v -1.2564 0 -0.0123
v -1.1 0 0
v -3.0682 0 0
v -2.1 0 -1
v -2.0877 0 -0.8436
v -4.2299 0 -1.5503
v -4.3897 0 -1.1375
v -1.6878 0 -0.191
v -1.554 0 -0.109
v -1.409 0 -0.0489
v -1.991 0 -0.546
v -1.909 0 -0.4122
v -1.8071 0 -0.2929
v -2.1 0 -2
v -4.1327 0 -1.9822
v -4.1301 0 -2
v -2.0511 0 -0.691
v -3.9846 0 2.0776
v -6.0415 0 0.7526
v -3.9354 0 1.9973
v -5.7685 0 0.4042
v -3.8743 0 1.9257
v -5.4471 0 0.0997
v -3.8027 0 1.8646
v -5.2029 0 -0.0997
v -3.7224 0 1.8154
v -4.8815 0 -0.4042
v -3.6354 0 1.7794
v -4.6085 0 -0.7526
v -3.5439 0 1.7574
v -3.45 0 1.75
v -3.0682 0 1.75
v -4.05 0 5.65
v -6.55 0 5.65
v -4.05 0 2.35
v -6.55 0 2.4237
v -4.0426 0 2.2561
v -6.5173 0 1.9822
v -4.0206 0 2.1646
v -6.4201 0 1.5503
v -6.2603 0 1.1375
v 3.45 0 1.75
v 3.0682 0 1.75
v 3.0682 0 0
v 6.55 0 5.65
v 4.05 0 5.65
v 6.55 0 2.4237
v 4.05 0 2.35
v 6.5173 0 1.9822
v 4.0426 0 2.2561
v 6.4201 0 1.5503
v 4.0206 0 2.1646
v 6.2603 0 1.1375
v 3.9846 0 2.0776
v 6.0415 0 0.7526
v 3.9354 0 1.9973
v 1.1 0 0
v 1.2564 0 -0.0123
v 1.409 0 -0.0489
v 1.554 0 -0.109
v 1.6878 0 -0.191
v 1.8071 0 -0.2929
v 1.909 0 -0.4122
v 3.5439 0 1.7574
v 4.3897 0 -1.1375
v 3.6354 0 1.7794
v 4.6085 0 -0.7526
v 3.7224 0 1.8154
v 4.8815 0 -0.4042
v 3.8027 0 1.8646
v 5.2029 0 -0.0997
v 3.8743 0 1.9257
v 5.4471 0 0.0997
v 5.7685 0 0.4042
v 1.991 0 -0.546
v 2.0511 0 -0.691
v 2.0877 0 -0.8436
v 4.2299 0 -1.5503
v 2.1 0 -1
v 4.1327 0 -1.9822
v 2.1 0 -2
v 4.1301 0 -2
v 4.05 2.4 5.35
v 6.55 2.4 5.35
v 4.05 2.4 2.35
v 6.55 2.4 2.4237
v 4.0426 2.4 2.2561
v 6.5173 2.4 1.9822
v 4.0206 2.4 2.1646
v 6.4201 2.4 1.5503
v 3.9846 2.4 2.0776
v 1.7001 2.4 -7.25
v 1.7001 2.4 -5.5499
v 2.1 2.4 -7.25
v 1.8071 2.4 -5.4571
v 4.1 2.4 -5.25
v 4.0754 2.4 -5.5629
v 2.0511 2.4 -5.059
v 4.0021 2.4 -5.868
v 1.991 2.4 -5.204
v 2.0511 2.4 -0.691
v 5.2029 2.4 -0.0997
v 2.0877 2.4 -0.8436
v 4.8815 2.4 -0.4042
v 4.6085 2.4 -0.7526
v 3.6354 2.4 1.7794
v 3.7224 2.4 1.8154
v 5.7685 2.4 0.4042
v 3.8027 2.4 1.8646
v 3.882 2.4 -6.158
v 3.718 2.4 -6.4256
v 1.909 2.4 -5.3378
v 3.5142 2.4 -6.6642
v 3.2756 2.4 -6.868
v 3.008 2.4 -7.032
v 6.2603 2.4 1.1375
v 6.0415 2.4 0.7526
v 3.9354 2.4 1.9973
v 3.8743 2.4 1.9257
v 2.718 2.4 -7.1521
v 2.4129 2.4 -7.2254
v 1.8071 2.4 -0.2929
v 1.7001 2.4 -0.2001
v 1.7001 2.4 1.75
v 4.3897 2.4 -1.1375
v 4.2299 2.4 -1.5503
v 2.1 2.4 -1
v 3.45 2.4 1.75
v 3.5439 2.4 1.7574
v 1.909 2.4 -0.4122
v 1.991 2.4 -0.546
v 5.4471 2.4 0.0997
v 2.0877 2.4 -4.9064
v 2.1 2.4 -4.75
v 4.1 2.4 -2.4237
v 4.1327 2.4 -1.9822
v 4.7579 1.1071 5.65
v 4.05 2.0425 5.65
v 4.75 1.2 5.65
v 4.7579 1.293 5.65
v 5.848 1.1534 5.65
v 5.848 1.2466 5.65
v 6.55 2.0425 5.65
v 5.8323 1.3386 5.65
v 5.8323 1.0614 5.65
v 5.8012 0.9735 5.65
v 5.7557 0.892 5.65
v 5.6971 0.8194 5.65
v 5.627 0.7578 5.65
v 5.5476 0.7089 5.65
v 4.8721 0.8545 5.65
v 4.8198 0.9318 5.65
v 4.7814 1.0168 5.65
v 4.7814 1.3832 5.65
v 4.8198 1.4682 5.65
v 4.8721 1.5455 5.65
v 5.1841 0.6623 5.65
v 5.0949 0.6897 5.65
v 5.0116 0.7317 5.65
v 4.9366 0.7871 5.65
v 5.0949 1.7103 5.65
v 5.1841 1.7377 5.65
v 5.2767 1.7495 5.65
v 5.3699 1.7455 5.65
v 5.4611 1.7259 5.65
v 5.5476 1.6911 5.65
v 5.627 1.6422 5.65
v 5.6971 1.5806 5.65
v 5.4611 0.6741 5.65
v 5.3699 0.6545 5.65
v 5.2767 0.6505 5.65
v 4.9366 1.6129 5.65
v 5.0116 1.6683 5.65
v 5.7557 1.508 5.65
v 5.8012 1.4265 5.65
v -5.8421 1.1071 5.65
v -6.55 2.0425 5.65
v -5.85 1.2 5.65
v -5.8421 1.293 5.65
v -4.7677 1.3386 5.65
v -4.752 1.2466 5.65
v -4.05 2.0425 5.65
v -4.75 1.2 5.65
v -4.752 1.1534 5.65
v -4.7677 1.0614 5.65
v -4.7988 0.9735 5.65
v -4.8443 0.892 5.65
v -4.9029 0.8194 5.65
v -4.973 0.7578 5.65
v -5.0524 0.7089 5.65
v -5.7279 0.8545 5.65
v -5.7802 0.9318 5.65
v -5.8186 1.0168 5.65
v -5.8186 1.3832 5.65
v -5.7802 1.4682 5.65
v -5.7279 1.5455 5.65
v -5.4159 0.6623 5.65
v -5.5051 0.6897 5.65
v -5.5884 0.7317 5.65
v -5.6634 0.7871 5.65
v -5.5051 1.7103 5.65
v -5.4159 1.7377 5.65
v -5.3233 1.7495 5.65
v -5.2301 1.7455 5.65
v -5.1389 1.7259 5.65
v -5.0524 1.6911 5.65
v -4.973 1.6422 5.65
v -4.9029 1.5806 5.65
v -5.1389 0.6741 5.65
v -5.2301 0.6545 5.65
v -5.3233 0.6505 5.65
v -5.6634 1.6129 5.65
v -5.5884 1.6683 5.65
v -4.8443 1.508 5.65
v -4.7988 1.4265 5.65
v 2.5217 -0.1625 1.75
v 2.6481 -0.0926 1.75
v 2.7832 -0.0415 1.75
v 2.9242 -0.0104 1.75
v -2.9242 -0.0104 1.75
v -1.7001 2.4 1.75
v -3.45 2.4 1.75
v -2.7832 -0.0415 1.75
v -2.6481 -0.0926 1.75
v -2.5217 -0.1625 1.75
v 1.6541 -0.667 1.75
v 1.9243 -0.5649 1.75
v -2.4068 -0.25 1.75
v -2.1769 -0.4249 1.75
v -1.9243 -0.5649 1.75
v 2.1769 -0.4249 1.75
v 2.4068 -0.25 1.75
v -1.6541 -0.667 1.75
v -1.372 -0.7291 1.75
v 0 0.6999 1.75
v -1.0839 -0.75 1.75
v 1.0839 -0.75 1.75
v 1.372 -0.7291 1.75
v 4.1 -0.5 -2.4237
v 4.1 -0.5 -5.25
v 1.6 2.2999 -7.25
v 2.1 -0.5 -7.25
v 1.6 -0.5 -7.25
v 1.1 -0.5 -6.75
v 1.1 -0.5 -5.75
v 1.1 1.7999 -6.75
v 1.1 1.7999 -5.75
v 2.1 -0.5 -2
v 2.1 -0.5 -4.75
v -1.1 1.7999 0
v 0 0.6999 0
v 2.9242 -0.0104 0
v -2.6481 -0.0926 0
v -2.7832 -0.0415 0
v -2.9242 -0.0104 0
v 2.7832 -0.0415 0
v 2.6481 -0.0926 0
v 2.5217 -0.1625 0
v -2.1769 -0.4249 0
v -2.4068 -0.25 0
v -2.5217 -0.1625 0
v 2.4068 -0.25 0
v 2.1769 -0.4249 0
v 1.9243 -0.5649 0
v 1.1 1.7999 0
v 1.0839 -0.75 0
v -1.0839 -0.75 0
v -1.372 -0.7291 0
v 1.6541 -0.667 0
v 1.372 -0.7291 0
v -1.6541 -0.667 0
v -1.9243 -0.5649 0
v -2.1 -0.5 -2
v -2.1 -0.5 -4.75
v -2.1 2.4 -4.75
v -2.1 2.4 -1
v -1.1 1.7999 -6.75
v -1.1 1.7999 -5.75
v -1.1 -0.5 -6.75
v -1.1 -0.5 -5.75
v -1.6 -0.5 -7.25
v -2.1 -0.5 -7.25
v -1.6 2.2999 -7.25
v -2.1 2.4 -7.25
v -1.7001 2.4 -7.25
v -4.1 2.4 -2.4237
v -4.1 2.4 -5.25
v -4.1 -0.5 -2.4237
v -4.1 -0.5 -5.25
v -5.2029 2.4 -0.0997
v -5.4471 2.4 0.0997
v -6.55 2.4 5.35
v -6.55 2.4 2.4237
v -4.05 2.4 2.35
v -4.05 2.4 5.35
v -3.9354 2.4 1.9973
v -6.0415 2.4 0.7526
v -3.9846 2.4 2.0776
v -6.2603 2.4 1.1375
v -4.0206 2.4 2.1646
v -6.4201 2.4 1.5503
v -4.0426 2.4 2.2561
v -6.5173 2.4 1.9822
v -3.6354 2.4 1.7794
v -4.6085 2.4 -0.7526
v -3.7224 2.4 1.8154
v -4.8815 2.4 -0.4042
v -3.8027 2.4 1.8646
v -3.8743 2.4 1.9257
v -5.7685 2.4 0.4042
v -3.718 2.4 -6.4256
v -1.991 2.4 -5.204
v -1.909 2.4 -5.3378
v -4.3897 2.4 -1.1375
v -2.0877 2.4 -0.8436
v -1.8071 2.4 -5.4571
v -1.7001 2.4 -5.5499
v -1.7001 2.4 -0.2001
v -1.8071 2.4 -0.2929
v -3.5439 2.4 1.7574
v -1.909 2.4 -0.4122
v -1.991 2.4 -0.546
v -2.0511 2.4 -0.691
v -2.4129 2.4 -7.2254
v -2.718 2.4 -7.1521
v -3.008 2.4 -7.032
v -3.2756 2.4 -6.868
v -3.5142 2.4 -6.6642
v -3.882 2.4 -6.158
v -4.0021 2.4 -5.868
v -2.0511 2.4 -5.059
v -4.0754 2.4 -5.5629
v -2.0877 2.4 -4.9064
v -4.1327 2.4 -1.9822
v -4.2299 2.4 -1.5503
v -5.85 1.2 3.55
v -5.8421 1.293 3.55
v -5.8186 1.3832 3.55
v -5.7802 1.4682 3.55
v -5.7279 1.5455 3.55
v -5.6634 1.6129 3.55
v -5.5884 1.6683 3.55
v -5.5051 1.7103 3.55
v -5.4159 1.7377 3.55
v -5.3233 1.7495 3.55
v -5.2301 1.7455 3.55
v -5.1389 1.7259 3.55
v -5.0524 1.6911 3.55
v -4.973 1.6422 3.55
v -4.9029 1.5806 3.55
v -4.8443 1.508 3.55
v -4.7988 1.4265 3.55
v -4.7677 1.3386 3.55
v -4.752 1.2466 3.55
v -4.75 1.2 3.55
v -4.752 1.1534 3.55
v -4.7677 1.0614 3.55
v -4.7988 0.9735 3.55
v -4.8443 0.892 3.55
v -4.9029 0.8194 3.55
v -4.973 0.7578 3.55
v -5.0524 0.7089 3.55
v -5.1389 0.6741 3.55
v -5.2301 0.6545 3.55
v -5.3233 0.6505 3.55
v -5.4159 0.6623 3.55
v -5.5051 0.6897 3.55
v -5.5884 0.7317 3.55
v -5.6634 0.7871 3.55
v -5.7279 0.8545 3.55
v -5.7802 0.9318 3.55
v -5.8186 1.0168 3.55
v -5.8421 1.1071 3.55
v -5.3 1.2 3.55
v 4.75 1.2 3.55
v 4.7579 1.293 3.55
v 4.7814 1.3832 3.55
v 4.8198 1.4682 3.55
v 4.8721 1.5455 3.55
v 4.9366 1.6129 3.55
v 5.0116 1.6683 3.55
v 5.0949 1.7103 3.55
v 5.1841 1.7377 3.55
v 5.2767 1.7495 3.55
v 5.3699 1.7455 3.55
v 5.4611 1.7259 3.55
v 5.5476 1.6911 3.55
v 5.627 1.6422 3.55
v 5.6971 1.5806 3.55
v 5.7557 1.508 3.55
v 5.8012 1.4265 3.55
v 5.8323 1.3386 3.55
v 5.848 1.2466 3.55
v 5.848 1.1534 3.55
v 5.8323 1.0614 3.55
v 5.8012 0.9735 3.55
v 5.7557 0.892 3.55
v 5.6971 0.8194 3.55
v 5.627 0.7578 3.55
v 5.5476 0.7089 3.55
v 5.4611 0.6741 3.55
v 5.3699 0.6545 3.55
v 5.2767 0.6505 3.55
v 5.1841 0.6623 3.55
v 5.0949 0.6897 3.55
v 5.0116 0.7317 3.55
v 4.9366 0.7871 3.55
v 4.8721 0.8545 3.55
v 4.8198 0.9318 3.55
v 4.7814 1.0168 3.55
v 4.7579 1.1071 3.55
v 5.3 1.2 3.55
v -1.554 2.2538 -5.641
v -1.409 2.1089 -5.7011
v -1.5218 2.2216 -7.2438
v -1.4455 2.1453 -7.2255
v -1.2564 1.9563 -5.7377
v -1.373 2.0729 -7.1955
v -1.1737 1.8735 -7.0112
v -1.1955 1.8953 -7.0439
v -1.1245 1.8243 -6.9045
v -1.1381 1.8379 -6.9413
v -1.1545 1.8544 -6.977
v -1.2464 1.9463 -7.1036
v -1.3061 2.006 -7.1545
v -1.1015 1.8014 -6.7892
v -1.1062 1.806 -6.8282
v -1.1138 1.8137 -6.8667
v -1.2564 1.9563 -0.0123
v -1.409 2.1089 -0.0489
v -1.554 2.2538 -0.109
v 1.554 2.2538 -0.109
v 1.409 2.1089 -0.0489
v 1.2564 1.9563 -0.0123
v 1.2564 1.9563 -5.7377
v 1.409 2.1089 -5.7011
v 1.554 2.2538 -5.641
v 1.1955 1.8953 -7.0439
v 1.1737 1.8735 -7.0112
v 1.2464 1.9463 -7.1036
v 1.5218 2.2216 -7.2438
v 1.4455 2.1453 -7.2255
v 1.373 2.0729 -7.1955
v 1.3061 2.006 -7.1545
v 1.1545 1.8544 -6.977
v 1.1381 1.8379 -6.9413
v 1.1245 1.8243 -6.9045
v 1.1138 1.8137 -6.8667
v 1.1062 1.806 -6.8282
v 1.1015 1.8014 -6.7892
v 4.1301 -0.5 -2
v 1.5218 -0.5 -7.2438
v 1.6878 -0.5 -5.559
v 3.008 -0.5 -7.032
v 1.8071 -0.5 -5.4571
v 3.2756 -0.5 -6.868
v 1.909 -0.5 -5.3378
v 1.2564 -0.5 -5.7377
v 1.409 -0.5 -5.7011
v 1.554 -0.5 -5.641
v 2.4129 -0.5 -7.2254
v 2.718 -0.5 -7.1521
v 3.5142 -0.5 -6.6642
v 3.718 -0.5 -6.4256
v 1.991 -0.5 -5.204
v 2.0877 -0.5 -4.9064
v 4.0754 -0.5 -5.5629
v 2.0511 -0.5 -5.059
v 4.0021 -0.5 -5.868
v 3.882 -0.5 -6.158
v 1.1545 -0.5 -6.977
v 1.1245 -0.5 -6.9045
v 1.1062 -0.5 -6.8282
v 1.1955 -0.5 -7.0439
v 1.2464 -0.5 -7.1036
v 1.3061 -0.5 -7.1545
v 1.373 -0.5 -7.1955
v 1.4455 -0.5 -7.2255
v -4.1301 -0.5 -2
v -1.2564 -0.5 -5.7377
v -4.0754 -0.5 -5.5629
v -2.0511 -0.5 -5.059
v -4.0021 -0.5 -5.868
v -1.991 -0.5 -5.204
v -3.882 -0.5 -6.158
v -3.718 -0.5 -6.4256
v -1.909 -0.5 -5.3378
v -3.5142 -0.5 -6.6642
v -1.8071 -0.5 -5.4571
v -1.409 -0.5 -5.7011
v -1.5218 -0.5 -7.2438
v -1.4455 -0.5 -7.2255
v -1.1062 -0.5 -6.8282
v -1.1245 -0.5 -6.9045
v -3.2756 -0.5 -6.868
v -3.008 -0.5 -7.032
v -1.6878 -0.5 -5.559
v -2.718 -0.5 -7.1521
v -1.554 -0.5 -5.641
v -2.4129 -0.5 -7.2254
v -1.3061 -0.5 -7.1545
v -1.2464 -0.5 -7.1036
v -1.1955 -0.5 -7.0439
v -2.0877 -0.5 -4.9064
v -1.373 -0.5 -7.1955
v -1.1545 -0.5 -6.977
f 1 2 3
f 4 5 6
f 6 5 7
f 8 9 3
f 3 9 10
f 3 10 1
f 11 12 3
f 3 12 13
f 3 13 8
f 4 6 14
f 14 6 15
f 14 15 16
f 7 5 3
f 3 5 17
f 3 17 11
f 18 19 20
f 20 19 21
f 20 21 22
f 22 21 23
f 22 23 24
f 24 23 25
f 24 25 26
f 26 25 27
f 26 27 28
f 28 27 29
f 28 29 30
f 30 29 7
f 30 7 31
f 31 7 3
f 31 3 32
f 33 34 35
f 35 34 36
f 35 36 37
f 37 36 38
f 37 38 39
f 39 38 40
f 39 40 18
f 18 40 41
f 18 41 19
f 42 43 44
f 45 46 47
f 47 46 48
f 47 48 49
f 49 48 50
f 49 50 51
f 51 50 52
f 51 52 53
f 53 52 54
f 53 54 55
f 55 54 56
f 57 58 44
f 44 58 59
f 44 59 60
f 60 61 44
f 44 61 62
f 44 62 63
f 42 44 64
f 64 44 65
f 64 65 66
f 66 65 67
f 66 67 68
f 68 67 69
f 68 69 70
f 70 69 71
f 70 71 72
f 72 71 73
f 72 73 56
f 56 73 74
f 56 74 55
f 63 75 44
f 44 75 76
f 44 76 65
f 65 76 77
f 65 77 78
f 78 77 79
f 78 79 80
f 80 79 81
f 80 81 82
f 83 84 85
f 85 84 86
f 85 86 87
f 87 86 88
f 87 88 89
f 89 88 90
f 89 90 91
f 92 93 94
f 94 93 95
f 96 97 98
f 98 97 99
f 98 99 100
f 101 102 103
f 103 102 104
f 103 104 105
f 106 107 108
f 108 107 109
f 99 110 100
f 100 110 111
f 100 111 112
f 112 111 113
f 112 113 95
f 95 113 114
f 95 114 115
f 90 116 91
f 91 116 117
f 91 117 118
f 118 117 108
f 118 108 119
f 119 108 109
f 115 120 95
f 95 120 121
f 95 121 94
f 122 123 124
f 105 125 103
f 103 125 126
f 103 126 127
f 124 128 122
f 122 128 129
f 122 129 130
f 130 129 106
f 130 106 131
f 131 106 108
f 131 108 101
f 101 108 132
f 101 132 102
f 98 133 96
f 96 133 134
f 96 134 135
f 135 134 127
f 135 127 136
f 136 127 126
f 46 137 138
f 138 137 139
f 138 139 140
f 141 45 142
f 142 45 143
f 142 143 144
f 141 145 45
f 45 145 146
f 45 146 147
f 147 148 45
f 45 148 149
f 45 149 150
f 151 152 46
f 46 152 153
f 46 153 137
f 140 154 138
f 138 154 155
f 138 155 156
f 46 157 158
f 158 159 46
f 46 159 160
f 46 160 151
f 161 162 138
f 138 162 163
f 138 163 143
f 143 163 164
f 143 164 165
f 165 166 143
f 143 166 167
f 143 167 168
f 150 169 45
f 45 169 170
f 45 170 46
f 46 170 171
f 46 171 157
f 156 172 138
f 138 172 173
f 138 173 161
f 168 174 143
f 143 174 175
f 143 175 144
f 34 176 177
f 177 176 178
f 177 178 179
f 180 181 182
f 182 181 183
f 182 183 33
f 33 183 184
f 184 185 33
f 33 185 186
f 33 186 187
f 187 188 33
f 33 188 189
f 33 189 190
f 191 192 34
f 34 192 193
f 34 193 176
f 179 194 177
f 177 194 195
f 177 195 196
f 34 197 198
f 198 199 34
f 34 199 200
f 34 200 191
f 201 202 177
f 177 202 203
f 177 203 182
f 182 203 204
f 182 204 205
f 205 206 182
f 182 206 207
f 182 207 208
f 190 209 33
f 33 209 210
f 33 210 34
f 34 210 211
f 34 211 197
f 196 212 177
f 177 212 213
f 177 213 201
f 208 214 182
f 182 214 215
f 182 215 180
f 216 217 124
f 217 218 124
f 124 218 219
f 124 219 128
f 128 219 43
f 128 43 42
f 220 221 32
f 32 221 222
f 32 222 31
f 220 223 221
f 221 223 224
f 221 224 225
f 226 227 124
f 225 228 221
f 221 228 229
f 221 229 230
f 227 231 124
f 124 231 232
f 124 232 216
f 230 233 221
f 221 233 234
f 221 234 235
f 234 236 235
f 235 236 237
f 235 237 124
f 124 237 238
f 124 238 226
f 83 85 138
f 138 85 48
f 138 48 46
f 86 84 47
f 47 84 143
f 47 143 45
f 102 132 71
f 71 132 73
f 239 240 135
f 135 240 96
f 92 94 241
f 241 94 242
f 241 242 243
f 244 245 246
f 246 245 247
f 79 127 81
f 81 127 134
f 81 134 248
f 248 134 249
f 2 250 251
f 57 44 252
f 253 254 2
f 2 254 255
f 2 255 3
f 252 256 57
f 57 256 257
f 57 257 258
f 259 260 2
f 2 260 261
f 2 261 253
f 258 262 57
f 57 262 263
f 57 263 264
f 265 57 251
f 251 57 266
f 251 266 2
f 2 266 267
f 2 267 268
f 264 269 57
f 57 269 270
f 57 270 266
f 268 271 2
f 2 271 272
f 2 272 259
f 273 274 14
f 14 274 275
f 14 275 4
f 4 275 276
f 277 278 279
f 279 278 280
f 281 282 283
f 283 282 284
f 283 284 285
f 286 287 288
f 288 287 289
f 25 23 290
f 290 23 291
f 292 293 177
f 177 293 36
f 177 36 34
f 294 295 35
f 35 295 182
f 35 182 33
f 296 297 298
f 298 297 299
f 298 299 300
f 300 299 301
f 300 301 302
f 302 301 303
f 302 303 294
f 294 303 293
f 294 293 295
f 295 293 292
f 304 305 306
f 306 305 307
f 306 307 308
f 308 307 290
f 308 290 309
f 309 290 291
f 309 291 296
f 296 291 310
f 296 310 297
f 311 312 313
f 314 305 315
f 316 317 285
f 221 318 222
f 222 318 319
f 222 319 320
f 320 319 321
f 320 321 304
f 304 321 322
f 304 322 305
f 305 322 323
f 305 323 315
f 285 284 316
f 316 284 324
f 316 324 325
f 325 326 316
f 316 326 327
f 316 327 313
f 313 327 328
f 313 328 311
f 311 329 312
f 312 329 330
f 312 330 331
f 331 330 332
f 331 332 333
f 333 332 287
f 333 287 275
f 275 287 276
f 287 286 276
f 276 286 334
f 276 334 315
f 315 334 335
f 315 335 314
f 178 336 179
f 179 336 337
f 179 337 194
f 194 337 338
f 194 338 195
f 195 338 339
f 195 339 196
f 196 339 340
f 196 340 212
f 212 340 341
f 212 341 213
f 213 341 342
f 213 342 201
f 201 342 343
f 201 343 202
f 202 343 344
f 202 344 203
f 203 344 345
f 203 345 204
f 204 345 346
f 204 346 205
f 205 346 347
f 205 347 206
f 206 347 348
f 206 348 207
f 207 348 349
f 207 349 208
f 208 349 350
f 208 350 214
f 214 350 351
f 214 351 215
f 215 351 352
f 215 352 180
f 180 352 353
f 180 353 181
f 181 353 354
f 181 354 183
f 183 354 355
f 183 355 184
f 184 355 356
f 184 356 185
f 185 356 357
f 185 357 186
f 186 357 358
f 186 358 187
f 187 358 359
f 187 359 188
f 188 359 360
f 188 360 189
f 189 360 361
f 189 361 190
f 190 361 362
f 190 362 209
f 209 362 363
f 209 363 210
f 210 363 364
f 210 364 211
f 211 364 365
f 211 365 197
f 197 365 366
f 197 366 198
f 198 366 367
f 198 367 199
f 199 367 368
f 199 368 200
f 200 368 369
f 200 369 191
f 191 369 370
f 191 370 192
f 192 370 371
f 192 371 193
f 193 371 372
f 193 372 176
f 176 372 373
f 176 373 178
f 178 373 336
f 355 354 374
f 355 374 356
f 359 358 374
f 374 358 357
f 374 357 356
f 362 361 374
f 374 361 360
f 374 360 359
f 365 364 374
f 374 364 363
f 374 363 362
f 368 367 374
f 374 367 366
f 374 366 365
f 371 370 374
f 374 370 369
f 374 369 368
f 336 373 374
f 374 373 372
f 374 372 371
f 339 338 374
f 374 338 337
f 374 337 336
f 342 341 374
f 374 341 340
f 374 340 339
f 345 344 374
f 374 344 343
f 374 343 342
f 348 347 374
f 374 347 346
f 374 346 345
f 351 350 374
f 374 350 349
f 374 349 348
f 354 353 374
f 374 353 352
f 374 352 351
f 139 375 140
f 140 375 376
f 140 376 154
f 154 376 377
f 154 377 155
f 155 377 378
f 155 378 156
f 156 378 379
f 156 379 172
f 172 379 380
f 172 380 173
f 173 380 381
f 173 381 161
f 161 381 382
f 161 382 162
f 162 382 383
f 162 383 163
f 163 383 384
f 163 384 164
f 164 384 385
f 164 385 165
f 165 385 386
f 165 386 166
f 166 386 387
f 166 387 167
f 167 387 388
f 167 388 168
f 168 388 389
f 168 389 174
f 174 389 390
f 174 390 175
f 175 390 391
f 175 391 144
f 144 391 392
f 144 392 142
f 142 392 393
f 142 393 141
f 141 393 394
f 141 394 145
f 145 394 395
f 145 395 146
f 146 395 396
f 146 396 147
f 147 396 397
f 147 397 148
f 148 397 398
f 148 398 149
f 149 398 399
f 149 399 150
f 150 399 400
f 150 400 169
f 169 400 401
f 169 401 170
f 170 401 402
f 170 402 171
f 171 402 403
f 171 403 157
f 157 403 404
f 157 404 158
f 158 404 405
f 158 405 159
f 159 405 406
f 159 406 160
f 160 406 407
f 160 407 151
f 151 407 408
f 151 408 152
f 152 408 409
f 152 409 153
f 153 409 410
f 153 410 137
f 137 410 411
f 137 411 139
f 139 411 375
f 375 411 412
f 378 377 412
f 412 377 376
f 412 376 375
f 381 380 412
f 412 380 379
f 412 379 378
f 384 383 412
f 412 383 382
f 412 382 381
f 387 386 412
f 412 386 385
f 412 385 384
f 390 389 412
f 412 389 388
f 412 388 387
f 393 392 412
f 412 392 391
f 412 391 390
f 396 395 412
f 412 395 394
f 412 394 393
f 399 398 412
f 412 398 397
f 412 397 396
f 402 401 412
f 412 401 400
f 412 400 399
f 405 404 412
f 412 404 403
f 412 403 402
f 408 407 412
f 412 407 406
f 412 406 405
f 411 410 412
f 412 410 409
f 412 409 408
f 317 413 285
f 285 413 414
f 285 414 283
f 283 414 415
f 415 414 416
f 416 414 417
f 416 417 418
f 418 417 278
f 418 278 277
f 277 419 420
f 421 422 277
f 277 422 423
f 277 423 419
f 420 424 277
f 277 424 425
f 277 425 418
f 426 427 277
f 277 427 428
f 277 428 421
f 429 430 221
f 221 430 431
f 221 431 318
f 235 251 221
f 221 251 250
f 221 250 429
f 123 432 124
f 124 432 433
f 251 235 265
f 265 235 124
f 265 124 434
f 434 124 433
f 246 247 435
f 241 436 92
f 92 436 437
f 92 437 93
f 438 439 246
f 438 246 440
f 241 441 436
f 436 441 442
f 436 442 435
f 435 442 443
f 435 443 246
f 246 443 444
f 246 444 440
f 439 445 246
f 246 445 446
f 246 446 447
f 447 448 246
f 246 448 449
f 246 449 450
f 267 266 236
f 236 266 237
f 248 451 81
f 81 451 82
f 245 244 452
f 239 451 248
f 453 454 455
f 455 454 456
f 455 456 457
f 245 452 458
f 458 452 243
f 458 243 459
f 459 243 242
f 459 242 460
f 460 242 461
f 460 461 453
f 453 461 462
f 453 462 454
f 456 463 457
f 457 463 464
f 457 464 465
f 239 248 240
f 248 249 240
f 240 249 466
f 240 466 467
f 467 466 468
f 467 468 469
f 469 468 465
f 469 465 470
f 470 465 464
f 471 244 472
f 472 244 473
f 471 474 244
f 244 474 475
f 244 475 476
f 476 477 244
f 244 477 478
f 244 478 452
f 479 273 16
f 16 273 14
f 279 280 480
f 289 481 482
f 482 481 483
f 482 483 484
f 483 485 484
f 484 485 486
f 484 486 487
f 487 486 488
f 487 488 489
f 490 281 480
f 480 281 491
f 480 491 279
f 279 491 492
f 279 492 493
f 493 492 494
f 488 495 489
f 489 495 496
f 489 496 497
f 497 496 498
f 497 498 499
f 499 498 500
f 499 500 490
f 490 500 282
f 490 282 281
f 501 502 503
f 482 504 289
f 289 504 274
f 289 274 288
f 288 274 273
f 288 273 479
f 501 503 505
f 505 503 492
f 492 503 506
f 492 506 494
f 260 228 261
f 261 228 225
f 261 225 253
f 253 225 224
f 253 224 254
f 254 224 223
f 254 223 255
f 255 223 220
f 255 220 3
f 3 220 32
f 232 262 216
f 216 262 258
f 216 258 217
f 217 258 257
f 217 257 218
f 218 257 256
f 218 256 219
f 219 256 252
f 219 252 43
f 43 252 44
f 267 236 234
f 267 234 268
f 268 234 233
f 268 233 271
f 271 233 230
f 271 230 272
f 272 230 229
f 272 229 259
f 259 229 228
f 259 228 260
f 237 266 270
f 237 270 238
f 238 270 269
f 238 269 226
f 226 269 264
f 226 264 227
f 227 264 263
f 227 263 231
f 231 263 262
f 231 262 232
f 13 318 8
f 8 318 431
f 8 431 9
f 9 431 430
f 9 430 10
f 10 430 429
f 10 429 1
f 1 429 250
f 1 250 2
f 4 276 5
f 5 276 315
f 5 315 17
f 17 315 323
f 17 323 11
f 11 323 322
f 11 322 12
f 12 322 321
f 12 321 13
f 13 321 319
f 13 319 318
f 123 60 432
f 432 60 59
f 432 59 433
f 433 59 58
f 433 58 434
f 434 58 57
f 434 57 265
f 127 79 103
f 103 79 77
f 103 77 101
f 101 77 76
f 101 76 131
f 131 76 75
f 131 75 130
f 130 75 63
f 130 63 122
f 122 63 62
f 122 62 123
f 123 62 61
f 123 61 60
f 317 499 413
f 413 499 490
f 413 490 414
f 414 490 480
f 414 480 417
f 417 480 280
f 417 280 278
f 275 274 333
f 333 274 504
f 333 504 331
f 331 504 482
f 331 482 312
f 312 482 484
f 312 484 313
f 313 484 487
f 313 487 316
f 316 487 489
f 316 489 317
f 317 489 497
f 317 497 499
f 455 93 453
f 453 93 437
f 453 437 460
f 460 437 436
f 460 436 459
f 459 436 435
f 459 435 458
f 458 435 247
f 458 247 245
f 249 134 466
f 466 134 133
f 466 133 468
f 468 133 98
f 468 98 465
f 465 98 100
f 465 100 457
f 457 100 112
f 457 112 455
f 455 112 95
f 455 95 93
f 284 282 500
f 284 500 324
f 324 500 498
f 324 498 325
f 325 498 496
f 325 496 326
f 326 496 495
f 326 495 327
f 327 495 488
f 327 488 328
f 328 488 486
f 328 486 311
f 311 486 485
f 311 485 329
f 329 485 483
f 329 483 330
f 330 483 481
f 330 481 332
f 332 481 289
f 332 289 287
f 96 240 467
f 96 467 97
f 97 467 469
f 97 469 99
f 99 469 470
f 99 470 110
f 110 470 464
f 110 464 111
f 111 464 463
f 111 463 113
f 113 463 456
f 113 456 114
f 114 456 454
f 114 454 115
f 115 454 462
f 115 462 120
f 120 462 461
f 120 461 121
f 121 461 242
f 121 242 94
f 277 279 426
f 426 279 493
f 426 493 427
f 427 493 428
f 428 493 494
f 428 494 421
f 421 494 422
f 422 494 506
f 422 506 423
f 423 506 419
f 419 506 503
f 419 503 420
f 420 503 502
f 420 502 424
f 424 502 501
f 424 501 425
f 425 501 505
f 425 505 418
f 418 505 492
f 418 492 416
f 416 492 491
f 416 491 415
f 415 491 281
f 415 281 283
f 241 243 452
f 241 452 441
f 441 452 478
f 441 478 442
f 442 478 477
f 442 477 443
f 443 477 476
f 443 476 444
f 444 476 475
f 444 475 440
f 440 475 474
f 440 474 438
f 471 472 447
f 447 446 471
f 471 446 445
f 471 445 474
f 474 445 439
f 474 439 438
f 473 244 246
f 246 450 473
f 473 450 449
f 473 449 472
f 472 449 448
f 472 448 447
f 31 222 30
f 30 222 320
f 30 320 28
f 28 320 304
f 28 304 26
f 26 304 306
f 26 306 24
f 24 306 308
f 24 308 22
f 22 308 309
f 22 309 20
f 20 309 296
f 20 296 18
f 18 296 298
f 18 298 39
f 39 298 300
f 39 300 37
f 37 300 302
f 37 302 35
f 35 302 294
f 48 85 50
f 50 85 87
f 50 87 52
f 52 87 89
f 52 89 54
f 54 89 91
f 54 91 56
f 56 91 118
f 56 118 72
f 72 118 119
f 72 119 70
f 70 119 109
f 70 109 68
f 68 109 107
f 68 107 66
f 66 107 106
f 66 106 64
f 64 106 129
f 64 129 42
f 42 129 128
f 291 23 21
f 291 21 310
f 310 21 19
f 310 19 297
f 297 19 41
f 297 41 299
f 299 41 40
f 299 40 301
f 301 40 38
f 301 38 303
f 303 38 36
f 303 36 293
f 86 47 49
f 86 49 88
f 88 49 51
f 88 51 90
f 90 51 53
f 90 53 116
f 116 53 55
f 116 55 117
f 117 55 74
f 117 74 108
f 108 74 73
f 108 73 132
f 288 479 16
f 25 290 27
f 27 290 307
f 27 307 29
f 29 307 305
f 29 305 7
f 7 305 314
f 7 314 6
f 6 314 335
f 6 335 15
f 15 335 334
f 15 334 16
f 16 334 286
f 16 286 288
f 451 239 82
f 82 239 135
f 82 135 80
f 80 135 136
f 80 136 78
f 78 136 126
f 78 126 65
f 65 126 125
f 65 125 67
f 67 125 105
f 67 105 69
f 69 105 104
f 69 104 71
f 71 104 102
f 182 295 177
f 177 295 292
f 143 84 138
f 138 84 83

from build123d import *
from OCP.BRepFilletAPI import BRepFilletAPI_MakeChamfer

# Parameters (mm, degrees)
BOSS_EXTRUDE1_DEPTH     = 2.4
CUT_EXTRUDE1_DEPTH      = 15.66535032
CUT_EXTRUDE1_DEPTH_BACK = 2.1
SKETCH4_R               = 0.55
CUT_EXTRUDE2_START      = -9
CUT_EXTRUDE2_DEPTH      = 9
SKETCH6_W               = 4.2
SKETCH6_H               = 1.75
BOSS_EXTRUDE2_DEPTH     = 0.75
BOSS_EXTRUDE3_DEPTH     = 0.5
FILLET1_R               = 1
FILLET2_R               = 2
FILLET3_R               = 1
FILLET4_R               = 2
FILLET6_R               = 0.5
FILLET8_R               = 0.6
FILLET9_R               = 3
FILLET10_R              = 3
CHAMFER1_SIZE           = 0.3
CHAMFER1_SIZE2          = 0.357526078


# Read off the part's stored shape, not the designer's step: Cut-Extrude2
# Some blends are built 0.0001 mm under size
with BuildPart() as part:
    # Sketch1 → Boss-Extrude1 (new body)
    with BuildSketch(Plane(origin=(0, 0, 0), x_dir=(1, 0, 0), z_dir=(0, 1, 0))):
        Polygon((-2.1, 0), (-2.1, 5.75), (-1.1, 5.75), (-1.1, 7.25), (-2.1, 7.25), (-4.1, 7.25), (-4.1, 1), (-6.55, -1), (-6.55, -5.65), (-4.05, -5.65), (-4.05, -1.75), (4.05, -1.75), (4.05, -5.65), (6.55, -5.65), (6.55, -1), (4.1, 1), (4.1, 7.25), (2.1, 7.25), (1.1, 7.25), (1.1, 5.75), (2.1, 5.75), (2.1, 0), align=None)
    extrude(amount=BOSS_EXTRUDE1_DEPTH)

    # Sketch4 → Cut-Extrude1 (cut, two sides: drawn at the far end of the back side and taken through both)
    with BuildSketch(Plane.XY.offset(5.65).offset(-CUT_EXTRUDE1_DEPTH_BACK)):
        with Locations((-5.3, 1.2)):
            Circle(SKETCH4_R)
        with Locations(Location((5.3, 1.2, 0), (0, 0, 180))):
            Circle(SKETCH4_R)
    extrude(amount=CUT_EXTRUDE1_DEPTH + CUT_EXTRUDE1_DEPTH_BACK, mode=Mode.SUBTRACT)

    # Cut-Extrude2 outline → Cut-Extrude2 (cut)
    with BuildSketch(Plane.XY.offset(1.75).offset(CUT_EXTRUDE2_START)):
        Polygon((-1.700147862, 2.4), (0, 0.699852138), (1.700147862, 2.4), align=None)
    extrude(amount=CUT_EXTRUDE2_DEPTH, mode=Mode.SUBTRACT)

    # Sketch6 → Boss-Extrude2 (add)
    with BuildSketch(Plane.XZ):
        with Locations((0, 0.875)):
            Rectangle(SKETCH6_W, SKETCH6_H)
    extrude(amount=BOSS_EXTRUDE2_DEPTH)

    # Sketch7 → Boss-Extrude3 (add)
    with BuildSketch(Plane.XZ):
        Polygon((-2.1, -5.75), (-1.1, -5.75), (-1.1, -7.25), (-4.1, -7.25), (-4.1, -2), (-2.1, -2), align=None)
        Polygon((4.1, -2), (2.1, -2), (2.1, -5.75), (1.1, -5.75), (1.1, -7.25), (4.1, -7.25), align=None)
    extrude(amount=BOSS_EXTRUDE3_DEPTH)

    # Fillet1
    # the kernel refuses this fillet: 1 mm, written as the material it adds along each edge
    with BuildSketch(Plane(origin=(-2.1, 0, 1.75), x_dir=(-1, 0, 0), z_dir=(0, 0, -1))) as fillet1_piece_1:
        with BuildLine():
            CenterArc((0.968245837, -1), FILLET1_R, 90, 75.522487814)
            Line((0, -0.75), (0, 0))
            Line((0, 0), (0.968245837, 0))
        make_face()
    extrude(amount=1.75)
    with BuildSketch(Plane(origin=(2.1, 0, 0), x_dir=(0, -1, 0), z_dir=(0, 0, 1))) as fillet1_piece_2:
        with BuildLine():
            CenterArc((1, 0.968245837), FILLET1_R, 180, 75.522487814)
            Line((0, 0.968245837), (0, 0))
            Line((0, 0), (0.75, 0))
        make_face()
    extrude(amount=1.75)

    # Fillet2
    fillet2_edges = [part.edges().sort_by_distance(p)[0] for p in [
        (-2.1, -0.75, 0.875),
        (2.1, -0.75, 0.875),
    ]]
    fillet(fillet2_edges, radius=FILLET2_R)

    # Fillet3
    fillet3_edges = [part.edges().sort_by_distance(p)[0] for p in [
        (-2.1, 0.95, -5.75),
        (2.1, 0.95, -5.75),
        (-2.1, 1.2, 0),
        (2.1, 1.2, 0),
    ]]
    fillet(fillet3_edges, radius=FILLET3_R - 0.0001)  # a hair under: the kernel refuses the full size

    # Fillet4
    fillet4_edges = [part.edges().sort_by_distance(p)[0] for p in [
        (-4.1, 0.95, -7.25),
        (4.1, 0.95, -7.25),
    ]]
    fillet(fillet4_edges, radius=FILLET4_R)

    # Fillet6
    fillet6_edges = [part.edges().sort_by_distance(p)[0] for p in [
        (-1.1, 0.649926069, -7.25),
        (1.1, 0.649926069, -7.25),
    ]]
    fillet(fillet6_edges, radius=FILLET6_R)

    # Fillet8
    fillet8_edges = [part.edges().sort_by_distance(p)[0] for p in [
        (-4.05, 1.2, 1.75),
        (4.05, 1.2, 1.75),
    ]]
    fillet(fillet8_edges, radius=FILLET8_R)

    # Fillet9
    fillet9_edges = [part.edges().sort_by_distance(p)[0] for p in [
        (-6.55, 1.2, 1),
        (6.55, 1.2, 1),
    ]]
    fillet(fillet9_edges, radius=FILLET9_R)

    # Fillet10
    fillet10_edges = [part.edges().sort_by_distance(p)[0] for p in [
        (-4.1, 1.2, -1),
        (4.1, 1.2, -1),
    ]]
    fillet(fillet10_edges, radius=FILLET10_R)

    # Chamfer1: one chamfer whose edges measure the first distance from different faces: ONE call of the kernel's chamfer builder (chamfer() names one face for all edges)
    chamfer1_edges_1 = [part.edges().sort_by_distance(p)[0] for p in [
        (5.3, 2.4, 5.65),
    ]]
    chamfer1_side_1 = [part.faces().sort_by_distance(p)[0] for p in [
        (3.921880383, 2.4, -0.274216986),
    ]]
    chamfer1_edges_2 = [part.edges().sort_by_distance(p)[0] for p in [
        (-5.3, 2.4, 5.65),
    ]]
    chamfer1_side_2 = [part.faces().sort_by_distance(p)[0] for p in [
        (-3.921880383, 2.4, -0.274216986),
    ]]
    chamfer1 = BRepFilletAPI_MakeChamfer(part.part.solid().wrapped)
    for e in chamfer1_edges_1:
        chamfer1.Add(CHAMFER1_SIZE, CHAMFER1_SIZE2, e.wrapped, chamfer1_side_1[0].wrapped)  # the first distance lies on this face
    for e in chamfer1_edges_2:
        chamfer1.Add(CHAMFER1_SIZE, CHAMFER1_SIZE2, e.wrapped, chamfer1_side_2[0].wrapped)  # the first distance lies on this face
    add(Compound.cast(chamfer1.Shape()), mode=Mode.REPLACE)


solid = part.part
